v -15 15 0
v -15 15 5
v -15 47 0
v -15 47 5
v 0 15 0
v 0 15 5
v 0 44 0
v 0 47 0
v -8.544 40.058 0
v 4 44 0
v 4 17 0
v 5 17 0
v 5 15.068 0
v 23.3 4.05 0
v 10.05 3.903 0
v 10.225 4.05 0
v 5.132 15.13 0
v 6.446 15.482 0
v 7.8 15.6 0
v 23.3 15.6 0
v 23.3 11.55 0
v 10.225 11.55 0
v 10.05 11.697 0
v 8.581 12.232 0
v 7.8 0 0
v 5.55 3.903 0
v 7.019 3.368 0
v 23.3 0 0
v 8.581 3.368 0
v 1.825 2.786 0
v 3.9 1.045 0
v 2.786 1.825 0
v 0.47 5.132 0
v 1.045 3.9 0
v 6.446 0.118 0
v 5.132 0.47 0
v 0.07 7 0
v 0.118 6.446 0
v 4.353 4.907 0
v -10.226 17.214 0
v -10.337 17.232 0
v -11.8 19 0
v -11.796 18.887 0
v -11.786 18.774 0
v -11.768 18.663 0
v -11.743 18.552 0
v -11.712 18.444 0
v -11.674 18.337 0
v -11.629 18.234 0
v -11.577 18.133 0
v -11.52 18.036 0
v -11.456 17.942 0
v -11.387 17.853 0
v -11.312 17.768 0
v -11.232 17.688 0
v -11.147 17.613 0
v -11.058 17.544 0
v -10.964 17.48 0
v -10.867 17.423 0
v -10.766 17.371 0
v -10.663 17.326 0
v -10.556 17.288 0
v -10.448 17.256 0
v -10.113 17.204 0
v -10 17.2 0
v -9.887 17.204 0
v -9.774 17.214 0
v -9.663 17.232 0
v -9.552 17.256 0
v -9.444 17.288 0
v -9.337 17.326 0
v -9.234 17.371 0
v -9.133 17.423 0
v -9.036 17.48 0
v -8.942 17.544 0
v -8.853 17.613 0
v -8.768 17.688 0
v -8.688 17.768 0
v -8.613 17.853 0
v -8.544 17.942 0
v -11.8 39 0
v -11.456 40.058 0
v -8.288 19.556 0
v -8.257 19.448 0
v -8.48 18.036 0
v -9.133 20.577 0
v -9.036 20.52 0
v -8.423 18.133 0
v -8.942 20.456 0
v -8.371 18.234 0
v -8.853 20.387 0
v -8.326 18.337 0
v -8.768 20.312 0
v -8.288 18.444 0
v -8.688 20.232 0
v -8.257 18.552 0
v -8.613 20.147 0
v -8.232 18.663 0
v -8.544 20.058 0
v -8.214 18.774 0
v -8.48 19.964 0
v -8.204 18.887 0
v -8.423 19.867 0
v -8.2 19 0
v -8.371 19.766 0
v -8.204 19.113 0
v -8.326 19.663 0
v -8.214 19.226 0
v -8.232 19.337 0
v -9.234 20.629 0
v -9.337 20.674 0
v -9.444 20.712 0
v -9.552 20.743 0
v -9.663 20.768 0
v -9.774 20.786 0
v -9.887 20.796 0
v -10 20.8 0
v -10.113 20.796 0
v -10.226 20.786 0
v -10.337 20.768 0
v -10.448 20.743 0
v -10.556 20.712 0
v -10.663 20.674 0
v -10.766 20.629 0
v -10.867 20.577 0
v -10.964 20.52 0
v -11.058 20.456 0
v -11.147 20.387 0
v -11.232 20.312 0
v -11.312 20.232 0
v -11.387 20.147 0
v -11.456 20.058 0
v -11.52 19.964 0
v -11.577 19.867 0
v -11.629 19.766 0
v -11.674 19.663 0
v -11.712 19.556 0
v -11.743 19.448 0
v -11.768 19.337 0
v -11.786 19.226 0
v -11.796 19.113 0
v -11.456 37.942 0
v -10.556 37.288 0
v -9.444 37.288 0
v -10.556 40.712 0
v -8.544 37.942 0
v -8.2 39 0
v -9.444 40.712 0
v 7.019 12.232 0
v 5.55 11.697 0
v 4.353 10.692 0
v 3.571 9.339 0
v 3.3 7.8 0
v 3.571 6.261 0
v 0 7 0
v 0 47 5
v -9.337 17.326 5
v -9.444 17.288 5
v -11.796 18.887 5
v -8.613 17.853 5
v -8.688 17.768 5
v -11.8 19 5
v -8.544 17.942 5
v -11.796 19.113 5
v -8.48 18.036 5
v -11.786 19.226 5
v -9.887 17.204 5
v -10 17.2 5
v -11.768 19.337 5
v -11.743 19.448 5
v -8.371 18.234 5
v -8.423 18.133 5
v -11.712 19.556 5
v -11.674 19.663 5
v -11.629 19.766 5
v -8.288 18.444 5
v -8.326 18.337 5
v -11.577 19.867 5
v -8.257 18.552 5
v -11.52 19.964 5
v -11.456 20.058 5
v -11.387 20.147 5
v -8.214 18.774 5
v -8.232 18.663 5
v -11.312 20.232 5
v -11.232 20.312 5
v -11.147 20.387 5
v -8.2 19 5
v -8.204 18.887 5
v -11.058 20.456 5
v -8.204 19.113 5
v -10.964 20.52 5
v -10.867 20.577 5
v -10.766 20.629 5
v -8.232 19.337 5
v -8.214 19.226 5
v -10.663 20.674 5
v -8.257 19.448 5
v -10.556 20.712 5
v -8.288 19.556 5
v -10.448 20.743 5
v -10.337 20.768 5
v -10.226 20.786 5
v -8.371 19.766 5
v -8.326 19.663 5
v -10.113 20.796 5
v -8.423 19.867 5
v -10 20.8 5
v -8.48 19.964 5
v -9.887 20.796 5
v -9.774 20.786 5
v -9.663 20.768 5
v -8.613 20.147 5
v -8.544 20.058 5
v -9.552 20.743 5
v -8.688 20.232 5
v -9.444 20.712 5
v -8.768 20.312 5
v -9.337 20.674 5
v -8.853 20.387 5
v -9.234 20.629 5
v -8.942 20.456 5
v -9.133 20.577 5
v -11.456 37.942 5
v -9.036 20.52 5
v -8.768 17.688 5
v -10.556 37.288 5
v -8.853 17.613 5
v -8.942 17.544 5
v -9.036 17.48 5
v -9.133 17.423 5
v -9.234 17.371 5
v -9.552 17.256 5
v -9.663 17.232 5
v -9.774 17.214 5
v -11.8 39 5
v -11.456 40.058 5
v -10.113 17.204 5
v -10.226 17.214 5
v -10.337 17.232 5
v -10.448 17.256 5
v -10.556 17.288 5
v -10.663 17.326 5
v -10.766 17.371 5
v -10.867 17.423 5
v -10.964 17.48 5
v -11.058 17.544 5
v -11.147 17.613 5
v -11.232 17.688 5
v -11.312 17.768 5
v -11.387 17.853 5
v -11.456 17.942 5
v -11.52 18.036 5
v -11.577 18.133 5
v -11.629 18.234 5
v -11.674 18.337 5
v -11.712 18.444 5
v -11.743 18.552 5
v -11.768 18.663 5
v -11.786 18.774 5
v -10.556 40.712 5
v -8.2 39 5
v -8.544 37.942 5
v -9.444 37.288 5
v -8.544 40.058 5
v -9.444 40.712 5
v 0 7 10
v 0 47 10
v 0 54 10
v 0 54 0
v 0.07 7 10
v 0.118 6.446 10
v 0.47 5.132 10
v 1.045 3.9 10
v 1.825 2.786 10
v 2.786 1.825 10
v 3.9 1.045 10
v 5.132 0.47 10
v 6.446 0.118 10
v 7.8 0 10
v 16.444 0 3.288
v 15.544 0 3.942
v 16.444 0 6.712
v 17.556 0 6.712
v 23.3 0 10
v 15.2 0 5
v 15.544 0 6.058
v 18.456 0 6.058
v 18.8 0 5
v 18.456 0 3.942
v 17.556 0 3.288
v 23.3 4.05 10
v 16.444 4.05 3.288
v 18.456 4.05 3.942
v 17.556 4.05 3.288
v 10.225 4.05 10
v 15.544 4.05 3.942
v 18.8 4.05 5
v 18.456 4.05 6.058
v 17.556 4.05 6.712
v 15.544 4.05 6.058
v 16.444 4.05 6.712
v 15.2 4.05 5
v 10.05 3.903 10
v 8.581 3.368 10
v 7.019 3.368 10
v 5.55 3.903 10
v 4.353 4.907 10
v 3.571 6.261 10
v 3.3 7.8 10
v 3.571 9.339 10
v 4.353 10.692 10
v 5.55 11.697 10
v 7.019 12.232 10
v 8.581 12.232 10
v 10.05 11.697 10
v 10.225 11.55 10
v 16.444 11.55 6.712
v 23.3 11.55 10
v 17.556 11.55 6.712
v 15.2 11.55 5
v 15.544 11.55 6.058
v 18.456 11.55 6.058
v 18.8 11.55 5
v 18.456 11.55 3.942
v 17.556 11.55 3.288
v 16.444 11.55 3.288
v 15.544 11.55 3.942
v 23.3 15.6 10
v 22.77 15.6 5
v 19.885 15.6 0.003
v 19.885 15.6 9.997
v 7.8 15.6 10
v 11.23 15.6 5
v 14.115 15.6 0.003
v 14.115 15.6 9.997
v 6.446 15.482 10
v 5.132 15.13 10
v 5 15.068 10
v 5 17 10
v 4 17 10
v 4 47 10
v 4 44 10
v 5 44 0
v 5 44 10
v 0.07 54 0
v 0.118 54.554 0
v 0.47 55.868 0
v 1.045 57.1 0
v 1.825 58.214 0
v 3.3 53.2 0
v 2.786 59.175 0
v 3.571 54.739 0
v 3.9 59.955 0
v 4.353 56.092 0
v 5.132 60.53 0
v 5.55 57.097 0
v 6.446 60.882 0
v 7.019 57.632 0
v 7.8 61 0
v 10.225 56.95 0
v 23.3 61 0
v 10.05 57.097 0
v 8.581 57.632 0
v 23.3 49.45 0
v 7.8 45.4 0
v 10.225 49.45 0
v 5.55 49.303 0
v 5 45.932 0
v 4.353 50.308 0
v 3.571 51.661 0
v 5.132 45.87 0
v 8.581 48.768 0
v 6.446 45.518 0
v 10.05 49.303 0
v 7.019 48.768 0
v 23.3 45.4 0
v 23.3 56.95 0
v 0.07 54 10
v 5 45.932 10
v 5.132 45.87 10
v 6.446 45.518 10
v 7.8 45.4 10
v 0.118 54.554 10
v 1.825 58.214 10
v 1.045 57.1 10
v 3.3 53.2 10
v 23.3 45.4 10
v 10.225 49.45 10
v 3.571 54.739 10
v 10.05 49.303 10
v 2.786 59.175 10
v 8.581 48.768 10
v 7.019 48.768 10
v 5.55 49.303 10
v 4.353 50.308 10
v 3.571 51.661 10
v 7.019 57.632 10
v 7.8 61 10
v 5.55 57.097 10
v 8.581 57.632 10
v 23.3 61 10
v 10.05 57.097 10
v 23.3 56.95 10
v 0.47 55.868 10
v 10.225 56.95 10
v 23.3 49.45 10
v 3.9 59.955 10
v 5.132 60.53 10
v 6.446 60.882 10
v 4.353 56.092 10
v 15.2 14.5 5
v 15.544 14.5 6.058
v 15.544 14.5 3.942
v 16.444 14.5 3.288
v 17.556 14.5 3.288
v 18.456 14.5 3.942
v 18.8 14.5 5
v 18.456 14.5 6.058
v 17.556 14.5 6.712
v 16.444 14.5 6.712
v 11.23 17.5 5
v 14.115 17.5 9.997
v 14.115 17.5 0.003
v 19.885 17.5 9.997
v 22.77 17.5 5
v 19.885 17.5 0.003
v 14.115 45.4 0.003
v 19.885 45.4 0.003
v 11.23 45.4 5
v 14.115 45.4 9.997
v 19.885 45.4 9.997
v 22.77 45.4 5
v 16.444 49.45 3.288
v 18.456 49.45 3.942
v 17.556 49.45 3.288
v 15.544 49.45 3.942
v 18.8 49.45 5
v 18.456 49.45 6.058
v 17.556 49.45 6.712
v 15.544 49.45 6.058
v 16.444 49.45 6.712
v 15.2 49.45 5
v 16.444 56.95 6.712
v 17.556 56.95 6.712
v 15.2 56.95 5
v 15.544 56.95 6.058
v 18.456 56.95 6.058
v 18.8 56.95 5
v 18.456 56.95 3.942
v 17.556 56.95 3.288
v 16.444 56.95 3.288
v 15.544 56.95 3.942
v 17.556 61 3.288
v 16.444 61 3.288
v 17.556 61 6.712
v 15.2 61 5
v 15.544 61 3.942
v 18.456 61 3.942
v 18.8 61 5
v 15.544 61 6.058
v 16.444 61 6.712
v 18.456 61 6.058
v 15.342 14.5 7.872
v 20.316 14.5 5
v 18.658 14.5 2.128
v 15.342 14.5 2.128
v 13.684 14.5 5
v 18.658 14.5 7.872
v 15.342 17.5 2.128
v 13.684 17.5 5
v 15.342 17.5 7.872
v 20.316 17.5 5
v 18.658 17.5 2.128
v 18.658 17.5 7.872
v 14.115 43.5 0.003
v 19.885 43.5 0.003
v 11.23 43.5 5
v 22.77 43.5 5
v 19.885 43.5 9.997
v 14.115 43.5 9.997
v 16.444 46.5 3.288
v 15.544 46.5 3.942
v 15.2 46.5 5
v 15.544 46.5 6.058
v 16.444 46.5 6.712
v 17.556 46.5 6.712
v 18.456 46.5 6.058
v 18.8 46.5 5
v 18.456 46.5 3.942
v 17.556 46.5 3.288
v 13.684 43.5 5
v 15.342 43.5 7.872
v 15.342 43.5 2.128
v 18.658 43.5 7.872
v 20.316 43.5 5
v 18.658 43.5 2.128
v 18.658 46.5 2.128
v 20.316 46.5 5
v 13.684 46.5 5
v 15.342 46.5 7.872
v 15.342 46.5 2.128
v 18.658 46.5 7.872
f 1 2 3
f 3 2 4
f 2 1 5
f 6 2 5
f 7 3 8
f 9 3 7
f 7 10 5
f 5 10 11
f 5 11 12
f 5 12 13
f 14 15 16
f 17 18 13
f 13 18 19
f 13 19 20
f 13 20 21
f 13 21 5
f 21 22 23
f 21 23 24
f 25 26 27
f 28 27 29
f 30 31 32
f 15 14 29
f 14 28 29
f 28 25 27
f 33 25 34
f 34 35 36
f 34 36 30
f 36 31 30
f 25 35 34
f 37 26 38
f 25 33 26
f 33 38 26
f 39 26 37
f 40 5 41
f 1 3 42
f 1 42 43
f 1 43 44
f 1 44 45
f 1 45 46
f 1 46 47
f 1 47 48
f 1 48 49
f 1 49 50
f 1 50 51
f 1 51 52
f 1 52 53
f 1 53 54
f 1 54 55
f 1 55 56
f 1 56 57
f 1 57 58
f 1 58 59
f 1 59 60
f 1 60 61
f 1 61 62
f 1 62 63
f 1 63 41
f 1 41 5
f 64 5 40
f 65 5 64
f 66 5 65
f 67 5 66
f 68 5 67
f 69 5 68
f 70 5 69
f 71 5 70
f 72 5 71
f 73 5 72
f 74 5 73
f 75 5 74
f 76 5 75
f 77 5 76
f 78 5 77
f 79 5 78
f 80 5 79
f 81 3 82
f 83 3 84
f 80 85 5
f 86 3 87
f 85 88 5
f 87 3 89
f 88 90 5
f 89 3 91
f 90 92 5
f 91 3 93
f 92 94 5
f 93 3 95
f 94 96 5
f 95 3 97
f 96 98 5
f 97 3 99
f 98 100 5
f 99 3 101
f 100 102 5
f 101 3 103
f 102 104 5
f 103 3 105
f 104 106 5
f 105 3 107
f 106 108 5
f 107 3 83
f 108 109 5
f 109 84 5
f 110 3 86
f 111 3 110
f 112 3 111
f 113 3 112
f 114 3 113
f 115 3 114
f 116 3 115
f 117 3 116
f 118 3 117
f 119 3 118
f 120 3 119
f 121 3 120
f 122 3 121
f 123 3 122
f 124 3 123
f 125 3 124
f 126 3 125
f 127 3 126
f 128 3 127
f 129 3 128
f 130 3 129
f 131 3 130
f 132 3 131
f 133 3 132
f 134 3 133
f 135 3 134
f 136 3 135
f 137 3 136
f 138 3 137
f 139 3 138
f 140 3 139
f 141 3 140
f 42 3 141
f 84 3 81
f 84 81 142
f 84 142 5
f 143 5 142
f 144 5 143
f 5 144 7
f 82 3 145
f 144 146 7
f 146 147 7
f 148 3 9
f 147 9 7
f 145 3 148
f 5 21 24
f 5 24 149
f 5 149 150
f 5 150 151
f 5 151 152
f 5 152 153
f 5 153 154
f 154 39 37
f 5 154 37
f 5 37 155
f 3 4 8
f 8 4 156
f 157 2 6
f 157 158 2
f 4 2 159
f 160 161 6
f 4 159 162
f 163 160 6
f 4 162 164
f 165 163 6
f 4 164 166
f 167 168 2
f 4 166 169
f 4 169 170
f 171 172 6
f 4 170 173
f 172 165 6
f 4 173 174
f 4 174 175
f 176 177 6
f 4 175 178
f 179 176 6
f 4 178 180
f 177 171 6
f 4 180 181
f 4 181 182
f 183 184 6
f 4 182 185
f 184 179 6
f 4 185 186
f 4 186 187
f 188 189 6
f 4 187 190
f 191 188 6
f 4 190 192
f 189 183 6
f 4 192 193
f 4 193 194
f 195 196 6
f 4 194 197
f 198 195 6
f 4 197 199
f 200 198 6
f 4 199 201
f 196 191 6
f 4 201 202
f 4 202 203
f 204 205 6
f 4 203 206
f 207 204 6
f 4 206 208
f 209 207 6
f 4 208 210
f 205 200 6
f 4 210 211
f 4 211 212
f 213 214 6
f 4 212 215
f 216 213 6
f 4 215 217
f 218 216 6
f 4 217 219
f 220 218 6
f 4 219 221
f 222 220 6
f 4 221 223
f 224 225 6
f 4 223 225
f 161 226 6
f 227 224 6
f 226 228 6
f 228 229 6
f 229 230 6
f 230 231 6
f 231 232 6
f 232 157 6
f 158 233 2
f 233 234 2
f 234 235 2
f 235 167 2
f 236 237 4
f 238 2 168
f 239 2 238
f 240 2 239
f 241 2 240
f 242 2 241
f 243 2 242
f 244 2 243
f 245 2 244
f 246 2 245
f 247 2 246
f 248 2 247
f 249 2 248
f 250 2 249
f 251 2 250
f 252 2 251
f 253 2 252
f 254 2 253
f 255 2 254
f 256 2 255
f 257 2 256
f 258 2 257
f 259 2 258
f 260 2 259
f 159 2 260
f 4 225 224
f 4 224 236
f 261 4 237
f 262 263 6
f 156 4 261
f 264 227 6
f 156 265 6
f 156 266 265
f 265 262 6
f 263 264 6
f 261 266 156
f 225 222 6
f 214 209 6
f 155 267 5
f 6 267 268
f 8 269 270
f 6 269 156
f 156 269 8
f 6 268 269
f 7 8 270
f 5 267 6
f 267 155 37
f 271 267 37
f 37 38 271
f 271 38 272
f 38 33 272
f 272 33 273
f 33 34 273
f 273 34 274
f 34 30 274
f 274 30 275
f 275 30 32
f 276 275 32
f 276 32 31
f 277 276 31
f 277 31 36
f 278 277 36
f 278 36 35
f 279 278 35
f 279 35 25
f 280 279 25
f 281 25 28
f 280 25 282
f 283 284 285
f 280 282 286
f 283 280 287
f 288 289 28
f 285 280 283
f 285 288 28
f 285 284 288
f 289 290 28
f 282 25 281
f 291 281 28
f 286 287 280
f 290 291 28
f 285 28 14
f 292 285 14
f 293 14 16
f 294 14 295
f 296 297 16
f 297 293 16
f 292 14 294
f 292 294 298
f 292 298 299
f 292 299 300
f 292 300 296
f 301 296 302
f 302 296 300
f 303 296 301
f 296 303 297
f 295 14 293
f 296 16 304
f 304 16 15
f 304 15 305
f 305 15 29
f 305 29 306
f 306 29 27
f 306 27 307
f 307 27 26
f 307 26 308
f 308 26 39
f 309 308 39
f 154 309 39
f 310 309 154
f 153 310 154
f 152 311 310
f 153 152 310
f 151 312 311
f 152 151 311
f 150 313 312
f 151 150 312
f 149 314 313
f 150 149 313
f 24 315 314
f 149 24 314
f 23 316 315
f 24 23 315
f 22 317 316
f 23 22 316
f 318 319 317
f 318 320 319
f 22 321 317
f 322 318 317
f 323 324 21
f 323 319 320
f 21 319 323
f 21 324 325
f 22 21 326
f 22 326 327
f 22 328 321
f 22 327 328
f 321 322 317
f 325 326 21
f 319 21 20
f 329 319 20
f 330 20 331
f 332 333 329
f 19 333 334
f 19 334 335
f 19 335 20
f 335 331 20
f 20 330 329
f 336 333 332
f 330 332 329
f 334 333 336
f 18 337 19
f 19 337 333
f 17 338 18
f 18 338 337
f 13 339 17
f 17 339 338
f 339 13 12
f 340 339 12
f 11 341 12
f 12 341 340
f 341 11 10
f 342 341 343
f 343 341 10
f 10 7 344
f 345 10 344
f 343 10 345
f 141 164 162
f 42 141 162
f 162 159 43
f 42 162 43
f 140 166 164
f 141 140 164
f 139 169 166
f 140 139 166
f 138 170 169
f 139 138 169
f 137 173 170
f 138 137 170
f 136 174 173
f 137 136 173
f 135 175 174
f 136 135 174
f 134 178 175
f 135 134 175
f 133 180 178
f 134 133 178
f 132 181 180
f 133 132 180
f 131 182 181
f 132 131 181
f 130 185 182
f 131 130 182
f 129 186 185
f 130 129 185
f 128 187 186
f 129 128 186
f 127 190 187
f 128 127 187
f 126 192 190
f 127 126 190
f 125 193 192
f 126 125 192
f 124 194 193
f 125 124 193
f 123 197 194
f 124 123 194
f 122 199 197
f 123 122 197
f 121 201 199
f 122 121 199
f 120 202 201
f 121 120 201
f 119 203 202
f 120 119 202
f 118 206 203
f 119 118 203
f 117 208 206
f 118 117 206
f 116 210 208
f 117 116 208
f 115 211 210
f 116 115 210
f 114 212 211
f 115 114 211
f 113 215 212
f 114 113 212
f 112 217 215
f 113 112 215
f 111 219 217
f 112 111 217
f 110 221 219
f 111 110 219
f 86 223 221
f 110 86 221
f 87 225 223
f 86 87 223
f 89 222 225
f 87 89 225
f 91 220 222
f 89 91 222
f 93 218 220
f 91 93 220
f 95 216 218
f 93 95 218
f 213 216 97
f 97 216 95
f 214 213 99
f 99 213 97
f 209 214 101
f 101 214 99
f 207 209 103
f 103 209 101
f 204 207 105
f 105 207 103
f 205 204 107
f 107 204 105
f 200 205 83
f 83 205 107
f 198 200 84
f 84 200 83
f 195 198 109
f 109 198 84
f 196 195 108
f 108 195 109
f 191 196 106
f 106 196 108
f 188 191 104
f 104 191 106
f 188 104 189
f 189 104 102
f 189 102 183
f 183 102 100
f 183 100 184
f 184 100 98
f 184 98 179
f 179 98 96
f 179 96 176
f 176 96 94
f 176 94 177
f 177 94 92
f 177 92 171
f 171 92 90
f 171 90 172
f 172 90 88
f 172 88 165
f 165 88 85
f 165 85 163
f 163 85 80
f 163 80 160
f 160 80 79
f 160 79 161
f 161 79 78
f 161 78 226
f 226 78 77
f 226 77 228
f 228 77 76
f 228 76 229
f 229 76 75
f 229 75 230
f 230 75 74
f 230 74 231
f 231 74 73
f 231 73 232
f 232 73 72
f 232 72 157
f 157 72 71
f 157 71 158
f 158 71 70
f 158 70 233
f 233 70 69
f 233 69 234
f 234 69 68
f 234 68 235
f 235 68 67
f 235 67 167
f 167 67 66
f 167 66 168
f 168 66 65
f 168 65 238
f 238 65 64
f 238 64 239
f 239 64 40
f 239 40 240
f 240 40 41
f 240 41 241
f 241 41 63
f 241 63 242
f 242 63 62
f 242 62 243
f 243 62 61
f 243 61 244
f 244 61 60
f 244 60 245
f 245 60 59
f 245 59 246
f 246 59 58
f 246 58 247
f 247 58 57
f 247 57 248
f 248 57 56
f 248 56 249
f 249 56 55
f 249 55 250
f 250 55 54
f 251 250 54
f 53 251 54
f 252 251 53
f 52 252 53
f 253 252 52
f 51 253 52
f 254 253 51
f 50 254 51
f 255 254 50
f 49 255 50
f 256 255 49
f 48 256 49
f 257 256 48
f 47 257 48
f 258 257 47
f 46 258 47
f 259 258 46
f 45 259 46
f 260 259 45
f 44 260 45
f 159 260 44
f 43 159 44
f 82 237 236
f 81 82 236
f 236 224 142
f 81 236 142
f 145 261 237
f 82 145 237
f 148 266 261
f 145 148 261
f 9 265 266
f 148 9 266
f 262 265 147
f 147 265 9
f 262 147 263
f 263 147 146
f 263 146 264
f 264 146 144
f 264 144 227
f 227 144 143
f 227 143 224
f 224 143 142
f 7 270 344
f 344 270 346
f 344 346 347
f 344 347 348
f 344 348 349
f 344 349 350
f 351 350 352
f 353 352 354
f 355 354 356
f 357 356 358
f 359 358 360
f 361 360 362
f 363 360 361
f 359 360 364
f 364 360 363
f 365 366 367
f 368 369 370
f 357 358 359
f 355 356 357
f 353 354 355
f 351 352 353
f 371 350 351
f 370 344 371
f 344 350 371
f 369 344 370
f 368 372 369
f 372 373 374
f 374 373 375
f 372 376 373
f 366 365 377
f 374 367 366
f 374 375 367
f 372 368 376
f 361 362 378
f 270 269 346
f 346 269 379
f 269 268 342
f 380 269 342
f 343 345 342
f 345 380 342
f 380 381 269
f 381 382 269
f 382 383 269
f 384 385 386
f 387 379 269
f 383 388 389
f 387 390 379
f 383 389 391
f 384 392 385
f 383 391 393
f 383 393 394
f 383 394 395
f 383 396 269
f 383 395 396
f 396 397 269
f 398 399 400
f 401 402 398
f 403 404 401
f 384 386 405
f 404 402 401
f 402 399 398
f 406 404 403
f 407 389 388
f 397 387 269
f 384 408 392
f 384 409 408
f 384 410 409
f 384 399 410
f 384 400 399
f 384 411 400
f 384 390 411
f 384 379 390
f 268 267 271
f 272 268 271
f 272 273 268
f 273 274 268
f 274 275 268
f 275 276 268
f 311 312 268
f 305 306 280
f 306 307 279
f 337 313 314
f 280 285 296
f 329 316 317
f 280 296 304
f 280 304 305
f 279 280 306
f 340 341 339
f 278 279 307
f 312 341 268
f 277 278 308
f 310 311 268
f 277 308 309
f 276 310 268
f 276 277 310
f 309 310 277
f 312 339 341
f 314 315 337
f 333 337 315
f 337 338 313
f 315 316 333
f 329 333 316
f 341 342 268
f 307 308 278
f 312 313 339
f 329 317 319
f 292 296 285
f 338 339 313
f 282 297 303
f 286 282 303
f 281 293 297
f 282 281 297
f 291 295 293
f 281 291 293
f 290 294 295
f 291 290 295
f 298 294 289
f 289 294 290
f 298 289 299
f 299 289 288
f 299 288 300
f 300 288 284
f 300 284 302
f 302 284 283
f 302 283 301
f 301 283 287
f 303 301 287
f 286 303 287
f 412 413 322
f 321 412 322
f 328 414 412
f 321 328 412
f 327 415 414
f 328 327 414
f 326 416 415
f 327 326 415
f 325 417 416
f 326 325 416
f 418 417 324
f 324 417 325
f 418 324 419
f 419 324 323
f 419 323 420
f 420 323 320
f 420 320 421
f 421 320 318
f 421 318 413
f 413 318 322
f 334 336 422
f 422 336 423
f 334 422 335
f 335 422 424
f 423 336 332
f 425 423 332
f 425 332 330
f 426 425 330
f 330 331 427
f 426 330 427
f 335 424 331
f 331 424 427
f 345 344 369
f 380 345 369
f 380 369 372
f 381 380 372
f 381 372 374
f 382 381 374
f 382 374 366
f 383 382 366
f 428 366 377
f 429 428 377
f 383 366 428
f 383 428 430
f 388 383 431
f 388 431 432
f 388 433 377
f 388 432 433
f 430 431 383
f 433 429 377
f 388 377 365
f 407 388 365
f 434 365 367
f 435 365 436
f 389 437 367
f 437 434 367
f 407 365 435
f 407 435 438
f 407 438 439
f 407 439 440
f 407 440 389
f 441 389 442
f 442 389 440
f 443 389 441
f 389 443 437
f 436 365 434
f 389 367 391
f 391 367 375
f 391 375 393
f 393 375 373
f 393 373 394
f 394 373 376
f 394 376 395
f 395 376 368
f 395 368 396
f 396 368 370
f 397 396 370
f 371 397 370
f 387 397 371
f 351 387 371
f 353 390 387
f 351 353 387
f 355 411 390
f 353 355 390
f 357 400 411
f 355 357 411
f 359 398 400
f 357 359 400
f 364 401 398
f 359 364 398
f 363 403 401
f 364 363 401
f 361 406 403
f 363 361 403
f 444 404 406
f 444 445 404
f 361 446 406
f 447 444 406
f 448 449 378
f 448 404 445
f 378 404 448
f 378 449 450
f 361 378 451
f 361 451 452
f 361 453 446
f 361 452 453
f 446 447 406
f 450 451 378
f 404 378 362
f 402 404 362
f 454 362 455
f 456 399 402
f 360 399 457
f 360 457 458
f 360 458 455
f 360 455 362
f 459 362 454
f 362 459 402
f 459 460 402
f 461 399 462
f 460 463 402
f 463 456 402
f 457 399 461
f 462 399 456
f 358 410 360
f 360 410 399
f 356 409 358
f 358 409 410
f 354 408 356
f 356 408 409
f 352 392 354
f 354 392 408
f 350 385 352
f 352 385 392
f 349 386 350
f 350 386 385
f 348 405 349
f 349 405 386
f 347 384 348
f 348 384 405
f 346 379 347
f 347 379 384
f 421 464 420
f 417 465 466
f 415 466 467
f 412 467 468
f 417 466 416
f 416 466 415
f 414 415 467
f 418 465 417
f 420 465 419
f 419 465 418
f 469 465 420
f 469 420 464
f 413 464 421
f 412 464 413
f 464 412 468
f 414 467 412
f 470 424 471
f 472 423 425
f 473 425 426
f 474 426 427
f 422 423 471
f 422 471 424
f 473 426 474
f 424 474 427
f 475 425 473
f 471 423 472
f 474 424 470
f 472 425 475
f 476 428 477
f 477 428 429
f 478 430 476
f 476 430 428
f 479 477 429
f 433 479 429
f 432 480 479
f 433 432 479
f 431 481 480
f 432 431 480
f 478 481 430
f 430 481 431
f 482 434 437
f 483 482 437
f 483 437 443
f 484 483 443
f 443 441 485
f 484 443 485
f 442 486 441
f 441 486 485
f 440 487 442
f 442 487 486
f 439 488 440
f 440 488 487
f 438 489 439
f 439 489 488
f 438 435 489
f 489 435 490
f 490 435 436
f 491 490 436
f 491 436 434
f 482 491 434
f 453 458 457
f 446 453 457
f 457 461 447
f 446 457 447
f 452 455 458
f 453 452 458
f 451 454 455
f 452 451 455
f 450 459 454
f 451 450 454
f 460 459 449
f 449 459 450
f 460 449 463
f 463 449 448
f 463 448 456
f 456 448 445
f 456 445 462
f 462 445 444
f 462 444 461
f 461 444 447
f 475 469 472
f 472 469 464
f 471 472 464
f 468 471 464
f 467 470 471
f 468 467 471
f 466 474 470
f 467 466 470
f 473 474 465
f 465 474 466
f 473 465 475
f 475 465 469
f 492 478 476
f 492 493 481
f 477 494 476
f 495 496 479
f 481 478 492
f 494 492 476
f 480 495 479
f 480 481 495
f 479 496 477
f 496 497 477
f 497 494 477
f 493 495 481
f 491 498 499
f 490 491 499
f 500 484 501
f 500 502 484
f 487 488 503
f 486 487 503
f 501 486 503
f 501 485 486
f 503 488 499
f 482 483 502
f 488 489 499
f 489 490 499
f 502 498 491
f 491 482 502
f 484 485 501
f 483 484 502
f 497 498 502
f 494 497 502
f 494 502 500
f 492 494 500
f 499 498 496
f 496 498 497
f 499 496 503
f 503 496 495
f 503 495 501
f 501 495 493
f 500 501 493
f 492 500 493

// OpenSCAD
// PRUSA Mendel  
// X-Endstop holder
// Used to attach endstop to 8mm X-rods
// GNU GPL v3
// Josef Průša
// josefprusa@me.com
// prusadjs.cz
// modified version creation Coen Roos 14 dec. 2012
// modified version creation Robert Moro 16 dec. 2012


/**
 * @id X-endstop-holder
 * @name X-Endstop holder
 * @category Printed
 * @using 1 m3x20xhex
 * @using 1 m3nut
 * @using 2 m3washer
 */

m3_nut_diameter_horizontal = 6.3;
m8_diameter=9;
m3_diameter=3.6;
outer_diameter = m8_diameter/2+3.3;
opening_size = m8_diameter-1.5; //openingsize



module endstop()
{

	// Rodclamp)
	rodclamp(0);

	// Rodclamp
 	rotate(a=180, v=[1,0,0]) translate([0,-61,-10]) rodclamp(1);

	// Bridge between rodclamps
	translate([0,15,0])
	{
			cube([4,32,10]);


		difference()
		{

			translate([-15,0,0]) {
			cube([15,32,5]);
			}
			// Holes for endstop switch
			union()
			{
				translate([-10,4,0])
				{
					cylinder(h =120, r = m3_diameter/2, $fn = 100);
					translate([0,20,0])cylinder(h =12, r = m3_diameter/2, $fn = 10);
				}

			}
			
		}
	}

}

module rodclamp(switch)
{
 	difference()
	{
		union()
		{
			translate([outer_diameter, outer_diameter, 0]) cylinder(h =10, r = outer_diameter, $fn = 36);
			translate([outer_diameter, 0, 0]) cube([15.5,outer_diameter*2,10]);
			translate([17, 17.5, 5]) rotate([90, 0, 0]) cylinder(h =5, r = 5.77, $fn = 6);
			translate ([0,7,0]) cube([5,10,10]);
		}
		translate([9, outer_diameter-opening_size/2, -1]) cube([18,opening_size,20]);
		translate([outer_diameter, outer_diameter, -1]) cylinder(h =20, r = m8_diameter/2, $fn = 18);
		translate([17, 19.5, 5]) rotate([90, 0, 0]) cylinder(h =5, r = m3_nut_diameter_horizontal/1.9, $fn = 6);
		//Securing hole
		translate([17, 17, 5]) rotate([90, 0, 0]) cylinder(h =20, r = m3_diameter/2, $fn = 10);
	   }
}

endstop();
//rodclamp(0);
